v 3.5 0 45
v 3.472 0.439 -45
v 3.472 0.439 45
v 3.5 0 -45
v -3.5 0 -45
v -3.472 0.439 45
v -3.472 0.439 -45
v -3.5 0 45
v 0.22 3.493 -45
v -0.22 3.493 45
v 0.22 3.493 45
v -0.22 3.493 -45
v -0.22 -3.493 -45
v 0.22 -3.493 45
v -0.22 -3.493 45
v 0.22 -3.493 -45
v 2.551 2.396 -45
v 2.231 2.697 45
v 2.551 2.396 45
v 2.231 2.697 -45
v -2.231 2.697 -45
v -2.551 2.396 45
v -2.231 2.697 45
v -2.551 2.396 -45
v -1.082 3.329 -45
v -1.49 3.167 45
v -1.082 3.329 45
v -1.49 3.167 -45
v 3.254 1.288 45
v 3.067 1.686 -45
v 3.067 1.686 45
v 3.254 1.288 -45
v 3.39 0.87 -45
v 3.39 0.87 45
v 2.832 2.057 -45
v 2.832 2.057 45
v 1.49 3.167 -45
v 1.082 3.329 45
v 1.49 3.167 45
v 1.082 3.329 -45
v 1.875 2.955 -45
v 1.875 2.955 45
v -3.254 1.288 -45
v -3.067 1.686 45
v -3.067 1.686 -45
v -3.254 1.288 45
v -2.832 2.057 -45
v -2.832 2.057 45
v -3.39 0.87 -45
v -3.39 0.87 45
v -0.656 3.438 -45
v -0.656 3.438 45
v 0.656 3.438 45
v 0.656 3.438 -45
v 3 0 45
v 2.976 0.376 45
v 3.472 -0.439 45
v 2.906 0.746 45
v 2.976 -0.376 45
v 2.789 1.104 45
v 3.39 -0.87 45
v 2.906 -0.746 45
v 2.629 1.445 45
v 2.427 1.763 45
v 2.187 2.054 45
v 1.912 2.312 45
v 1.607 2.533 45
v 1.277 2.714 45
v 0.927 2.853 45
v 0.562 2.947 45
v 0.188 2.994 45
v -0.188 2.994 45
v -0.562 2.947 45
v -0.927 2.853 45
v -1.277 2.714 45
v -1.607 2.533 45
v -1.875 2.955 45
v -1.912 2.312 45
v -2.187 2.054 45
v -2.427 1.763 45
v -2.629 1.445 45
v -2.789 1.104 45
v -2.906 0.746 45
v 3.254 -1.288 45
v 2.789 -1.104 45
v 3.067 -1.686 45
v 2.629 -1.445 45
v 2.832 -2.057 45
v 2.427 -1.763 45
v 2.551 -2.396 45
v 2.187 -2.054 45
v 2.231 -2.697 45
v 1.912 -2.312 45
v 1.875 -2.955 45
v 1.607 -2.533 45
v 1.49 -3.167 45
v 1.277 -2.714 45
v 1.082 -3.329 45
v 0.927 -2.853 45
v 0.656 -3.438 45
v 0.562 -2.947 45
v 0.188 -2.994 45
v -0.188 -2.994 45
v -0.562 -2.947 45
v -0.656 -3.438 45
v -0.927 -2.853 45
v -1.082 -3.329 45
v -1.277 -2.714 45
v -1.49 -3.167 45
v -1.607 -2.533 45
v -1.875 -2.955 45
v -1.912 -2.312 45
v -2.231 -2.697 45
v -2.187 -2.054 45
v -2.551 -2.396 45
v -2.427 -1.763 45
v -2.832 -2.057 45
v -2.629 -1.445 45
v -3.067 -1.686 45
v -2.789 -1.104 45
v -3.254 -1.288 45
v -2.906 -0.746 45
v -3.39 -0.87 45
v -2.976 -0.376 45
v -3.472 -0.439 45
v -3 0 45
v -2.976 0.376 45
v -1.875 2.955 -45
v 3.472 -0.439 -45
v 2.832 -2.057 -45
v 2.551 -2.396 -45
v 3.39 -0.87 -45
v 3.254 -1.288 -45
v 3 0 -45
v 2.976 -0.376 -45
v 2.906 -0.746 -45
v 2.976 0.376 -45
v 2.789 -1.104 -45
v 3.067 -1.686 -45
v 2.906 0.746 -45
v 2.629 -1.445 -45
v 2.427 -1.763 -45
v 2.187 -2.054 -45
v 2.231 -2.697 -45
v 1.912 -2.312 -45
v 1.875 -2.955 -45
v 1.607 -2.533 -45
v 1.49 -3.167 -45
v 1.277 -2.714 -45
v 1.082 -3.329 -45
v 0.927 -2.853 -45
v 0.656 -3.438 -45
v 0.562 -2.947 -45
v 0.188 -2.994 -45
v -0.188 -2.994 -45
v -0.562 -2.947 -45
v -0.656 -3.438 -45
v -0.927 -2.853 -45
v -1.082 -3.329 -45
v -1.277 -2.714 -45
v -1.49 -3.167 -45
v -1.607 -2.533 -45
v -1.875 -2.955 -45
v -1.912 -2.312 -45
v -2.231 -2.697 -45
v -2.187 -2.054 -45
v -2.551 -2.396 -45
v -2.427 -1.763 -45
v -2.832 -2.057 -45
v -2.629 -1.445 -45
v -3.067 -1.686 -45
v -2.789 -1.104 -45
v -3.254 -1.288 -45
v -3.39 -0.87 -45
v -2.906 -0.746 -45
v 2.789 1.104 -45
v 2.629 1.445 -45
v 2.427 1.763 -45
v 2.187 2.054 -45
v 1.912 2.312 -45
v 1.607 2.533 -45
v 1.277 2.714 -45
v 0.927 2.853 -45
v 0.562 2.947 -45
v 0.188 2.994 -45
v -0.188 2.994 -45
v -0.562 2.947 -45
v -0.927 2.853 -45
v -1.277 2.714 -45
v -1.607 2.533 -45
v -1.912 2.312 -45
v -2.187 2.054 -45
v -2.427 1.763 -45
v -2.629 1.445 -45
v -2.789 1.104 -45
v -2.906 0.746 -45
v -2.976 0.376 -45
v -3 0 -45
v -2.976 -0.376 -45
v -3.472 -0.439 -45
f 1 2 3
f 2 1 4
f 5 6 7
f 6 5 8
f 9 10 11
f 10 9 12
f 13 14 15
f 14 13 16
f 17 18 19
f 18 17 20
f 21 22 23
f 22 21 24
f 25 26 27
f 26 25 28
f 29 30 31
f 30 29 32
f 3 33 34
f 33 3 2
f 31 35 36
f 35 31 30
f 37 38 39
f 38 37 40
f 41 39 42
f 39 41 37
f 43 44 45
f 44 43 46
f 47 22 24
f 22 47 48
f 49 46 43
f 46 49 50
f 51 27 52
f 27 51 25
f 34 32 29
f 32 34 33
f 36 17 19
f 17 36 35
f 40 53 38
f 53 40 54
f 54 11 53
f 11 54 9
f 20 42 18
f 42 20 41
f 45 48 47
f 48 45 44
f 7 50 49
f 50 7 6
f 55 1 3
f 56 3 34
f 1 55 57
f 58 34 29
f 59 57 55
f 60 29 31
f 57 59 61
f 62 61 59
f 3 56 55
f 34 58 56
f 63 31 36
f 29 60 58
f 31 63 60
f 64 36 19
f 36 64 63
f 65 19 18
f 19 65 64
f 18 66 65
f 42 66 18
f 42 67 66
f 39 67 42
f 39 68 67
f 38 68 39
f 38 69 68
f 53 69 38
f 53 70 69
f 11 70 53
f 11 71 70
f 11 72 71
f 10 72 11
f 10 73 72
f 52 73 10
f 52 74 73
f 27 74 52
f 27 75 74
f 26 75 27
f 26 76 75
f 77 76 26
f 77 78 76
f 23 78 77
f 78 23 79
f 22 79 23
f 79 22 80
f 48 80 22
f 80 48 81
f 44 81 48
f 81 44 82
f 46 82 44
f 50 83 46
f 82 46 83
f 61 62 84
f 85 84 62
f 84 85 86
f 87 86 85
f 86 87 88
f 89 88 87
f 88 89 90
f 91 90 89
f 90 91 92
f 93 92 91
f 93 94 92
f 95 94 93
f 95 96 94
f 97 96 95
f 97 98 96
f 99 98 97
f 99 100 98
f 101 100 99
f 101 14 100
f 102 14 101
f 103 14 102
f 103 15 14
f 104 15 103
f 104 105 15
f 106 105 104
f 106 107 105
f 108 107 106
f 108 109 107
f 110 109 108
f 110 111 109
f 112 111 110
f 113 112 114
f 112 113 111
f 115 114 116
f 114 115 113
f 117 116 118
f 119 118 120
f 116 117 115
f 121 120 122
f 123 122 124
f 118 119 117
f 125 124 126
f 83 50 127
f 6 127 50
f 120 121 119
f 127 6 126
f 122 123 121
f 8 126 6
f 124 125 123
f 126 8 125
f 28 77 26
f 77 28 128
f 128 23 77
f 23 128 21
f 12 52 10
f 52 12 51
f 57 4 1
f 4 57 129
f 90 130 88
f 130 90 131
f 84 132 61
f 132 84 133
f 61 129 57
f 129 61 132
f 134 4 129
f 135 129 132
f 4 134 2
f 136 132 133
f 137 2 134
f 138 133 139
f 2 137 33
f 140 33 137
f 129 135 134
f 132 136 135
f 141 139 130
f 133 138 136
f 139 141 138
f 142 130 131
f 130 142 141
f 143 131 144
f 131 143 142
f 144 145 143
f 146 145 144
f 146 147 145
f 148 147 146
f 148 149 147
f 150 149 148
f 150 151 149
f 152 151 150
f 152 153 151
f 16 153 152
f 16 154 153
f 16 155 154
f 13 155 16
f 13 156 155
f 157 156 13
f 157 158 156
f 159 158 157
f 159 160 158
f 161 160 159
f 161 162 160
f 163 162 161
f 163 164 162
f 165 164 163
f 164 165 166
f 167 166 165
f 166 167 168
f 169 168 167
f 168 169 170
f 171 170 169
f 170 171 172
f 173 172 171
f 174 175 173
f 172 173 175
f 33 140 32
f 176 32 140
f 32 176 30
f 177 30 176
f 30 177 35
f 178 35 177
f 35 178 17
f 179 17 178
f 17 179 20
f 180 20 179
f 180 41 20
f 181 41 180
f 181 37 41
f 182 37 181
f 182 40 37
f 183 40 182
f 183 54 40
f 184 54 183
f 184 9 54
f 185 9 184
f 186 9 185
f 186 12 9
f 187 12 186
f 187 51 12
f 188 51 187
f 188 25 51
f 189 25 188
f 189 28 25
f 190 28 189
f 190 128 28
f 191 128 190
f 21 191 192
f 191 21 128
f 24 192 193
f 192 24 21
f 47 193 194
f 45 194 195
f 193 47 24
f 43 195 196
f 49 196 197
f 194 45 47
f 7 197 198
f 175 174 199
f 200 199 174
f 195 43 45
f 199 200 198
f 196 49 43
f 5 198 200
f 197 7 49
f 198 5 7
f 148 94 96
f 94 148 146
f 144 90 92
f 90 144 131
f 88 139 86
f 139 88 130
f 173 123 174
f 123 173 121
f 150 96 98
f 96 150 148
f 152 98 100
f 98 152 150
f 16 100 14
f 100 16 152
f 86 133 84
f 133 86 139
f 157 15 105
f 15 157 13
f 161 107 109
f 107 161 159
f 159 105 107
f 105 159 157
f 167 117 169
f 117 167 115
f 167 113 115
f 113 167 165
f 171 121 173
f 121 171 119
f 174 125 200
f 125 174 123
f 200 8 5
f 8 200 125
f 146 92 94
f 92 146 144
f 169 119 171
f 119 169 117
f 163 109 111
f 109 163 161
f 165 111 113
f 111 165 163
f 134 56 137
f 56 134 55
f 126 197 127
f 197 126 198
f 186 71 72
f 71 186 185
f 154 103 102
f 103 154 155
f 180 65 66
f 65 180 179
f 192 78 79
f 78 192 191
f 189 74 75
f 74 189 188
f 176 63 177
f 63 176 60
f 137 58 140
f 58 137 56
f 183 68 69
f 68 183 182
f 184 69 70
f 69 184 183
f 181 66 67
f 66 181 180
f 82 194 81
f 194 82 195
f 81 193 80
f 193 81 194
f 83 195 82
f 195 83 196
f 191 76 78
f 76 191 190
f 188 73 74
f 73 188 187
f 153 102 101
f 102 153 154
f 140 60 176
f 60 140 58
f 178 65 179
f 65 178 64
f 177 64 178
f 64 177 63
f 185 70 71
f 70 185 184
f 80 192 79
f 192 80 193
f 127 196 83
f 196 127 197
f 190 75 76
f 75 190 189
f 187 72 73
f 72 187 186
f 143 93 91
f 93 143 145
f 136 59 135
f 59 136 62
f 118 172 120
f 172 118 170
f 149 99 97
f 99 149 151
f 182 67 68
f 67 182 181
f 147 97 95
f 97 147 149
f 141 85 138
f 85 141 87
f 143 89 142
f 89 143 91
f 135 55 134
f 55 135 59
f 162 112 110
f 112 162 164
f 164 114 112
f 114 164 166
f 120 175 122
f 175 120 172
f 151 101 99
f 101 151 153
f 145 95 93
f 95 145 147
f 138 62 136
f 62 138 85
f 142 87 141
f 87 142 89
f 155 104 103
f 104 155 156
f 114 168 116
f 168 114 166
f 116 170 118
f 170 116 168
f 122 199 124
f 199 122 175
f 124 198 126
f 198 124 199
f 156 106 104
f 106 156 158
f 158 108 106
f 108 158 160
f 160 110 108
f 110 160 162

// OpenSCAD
$fn = 50;


difference() {
	union() {
		translate(v = [0, 0, -45.0000000000]) {
			cylinder(h = 90, r = 3.5000000000);
		}
	}
	union() {
		translate(v = [0, 0, -100.0000000000]) {
			cylinder(h = 200, r = 3);
		}
	}
}
